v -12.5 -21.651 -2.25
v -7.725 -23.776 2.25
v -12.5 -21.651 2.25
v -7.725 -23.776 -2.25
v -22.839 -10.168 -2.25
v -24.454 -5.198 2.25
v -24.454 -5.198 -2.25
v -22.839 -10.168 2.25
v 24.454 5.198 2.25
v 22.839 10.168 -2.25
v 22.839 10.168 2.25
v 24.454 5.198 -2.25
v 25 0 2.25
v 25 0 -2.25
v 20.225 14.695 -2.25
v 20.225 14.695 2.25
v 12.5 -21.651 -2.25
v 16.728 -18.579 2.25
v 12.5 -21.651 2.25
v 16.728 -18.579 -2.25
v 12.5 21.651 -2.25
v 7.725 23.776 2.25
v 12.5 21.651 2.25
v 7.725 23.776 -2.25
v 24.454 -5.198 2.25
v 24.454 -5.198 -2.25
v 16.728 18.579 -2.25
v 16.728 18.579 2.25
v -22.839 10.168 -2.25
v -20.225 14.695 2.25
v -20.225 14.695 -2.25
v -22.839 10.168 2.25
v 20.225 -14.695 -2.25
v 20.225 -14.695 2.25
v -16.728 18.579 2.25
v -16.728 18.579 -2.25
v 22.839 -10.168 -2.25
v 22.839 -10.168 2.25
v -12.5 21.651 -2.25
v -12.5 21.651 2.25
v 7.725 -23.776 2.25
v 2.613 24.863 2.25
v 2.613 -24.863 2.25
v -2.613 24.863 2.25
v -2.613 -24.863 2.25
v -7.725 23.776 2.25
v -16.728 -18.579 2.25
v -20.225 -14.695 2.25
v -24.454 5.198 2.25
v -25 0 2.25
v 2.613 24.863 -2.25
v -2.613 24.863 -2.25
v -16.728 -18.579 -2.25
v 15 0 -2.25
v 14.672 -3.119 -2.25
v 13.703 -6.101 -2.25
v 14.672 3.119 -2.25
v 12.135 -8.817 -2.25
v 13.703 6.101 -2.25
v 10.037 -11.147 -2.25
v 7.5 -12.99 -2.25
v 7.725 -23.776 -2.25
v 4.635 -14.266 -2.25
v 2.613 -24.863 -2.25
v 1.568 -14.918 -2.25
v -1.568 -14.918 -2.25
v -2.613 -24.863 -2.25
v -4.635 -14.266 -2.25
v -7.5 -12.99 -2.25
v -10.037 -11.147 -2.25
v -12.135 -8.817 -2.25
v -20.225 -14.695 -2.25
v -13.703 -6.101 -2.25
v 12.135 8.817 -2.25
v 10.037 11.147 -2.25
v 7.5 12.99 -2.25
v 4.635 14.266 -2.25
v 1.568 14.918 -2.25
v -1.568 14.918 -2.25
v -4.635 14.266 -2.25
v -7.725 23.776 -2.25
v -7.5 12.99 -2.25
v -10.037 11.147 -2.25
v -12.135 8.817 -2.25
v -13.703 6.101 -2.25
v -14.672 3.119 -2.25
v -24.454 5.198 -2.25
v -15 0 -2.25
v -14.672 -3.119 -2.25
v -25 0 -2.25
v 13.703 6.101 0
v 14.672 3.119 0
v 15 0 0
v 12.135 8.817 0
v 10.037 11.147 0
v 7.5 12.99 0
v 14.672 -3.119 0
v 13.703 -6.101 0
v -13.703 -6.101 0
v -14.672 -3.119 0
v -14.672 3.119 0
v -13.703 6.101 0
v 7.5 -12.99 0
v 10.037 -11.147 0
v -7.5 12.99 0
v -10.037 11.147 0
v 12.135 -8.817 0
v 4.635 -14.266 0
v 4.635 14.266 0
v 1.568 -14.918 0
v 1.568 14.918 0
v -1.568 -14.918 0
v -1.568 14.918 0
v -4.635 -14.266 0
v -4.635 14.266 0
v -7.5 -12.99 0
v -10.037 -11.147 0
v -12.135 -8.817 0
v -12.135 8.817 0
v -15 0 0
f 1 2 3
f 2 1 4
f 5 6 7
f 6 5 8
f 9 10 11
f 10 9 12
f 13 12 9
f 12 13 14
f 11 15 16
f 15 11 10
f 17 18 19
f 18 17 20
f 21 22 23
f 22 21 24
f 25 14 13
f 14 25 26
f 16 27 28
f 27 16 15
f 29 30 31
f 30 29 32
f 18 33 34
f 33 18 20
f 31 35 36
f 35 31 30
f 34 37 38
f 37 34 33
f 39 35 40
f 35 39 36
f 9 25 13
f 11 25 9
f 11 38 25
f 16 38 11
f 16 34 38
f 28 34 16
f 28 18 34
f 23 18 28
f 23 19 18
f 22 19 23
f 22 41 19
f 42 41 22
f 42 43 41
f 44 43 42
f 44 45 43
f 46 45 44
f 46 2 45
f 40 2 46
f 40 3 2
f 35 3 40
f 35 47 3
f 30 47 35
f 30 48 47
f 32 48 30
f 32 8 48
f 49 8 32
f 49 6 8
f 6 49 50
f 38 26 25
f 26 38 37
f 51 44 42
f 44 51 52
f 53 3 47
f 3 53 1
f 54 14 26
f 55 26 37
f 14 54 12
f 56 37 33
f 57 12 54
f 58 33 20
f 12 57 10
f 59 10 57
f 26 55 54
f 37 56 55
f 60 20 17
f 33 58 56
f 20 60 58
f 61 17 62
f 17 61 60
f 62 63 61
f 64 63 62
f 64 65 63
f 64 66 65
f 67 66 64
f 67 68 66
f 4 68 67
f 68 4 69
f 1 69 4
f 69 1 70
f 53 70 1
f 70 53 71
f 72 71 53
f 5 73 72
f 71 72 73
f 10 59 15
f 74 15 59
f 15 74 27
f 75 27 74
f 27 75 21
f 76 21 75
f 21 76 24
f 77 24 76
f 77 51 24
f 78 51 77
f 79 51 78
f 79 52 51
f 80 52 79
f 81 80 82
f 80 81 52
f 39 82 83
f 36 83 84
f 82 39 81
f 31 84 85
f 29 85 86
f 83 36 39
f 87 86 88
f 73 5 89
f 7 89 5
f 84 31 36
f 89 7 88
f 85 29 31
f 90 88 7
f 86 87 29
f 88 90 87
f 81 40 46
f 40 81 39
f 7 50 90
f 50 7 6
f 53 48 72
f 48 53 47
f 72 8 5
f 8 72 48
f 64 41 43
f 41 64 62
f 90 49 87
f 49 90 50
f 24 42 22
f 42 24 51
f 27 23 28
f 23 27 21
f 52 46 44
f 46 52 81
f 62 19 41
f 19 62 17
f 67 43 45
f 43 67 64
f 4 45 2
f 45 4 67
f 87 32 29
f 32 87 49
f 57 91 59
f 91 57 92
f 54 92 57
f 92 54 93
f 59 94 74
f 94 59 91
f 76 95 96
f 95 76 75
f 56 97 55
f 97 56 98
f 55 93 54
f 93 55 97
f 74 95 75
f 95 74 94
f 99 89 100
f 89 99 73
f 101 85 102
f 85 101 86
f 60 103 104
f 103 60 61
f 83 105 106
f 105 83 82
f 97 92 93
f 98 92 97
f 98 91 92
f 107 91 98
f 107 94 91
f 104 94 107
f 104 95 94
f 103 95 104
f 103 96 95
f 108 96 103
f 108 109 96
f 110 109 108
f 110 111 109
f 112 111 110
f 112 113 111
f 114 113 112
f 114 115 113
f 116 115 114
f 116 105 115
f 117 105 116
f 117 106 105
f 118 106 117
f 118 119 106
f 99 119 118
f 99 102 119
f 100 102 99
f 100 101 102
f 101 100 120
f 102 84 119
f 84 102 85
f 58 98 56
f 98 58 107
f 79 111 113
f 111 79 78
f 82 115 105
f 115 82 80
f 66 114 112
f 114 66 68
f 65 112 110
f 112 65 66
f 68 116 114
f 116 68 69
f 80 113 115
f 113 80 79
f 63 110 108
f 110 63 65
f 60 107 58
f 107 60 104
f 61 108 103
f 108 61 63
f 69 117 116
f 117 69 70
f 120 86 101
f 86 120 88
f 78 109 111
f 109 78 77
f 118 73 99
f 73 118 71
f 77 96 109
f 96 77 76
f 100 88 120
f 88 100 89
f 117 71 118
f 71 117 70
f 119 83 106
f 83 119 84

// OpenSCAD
// Dimensions for the ring spacer
module ring_spacer(inner_diameter, outer_diameter, thickness) {
    difference() {
        // Outer ring
        cylinder(d = outer_diameter, h = thickness, center = true);
        // Inner hollow section
        translate([0, 0, -thickness / 2])
            cylinder(d = inner_diameter, h = thickness, center = true);
    }
}

// Adjusted thickness to match a thinner and uniform profile
// Test render of the ring spacer
translate([0, 0, 0]) ring_spacer(inner_diameter = 30, outer_diameter = 50, thickness = 4.5);

// Example for future additions to fix flange_plate, central_cylinder, nut, or bolt.
// Further components can be drafted here following similar modular adjustments.
